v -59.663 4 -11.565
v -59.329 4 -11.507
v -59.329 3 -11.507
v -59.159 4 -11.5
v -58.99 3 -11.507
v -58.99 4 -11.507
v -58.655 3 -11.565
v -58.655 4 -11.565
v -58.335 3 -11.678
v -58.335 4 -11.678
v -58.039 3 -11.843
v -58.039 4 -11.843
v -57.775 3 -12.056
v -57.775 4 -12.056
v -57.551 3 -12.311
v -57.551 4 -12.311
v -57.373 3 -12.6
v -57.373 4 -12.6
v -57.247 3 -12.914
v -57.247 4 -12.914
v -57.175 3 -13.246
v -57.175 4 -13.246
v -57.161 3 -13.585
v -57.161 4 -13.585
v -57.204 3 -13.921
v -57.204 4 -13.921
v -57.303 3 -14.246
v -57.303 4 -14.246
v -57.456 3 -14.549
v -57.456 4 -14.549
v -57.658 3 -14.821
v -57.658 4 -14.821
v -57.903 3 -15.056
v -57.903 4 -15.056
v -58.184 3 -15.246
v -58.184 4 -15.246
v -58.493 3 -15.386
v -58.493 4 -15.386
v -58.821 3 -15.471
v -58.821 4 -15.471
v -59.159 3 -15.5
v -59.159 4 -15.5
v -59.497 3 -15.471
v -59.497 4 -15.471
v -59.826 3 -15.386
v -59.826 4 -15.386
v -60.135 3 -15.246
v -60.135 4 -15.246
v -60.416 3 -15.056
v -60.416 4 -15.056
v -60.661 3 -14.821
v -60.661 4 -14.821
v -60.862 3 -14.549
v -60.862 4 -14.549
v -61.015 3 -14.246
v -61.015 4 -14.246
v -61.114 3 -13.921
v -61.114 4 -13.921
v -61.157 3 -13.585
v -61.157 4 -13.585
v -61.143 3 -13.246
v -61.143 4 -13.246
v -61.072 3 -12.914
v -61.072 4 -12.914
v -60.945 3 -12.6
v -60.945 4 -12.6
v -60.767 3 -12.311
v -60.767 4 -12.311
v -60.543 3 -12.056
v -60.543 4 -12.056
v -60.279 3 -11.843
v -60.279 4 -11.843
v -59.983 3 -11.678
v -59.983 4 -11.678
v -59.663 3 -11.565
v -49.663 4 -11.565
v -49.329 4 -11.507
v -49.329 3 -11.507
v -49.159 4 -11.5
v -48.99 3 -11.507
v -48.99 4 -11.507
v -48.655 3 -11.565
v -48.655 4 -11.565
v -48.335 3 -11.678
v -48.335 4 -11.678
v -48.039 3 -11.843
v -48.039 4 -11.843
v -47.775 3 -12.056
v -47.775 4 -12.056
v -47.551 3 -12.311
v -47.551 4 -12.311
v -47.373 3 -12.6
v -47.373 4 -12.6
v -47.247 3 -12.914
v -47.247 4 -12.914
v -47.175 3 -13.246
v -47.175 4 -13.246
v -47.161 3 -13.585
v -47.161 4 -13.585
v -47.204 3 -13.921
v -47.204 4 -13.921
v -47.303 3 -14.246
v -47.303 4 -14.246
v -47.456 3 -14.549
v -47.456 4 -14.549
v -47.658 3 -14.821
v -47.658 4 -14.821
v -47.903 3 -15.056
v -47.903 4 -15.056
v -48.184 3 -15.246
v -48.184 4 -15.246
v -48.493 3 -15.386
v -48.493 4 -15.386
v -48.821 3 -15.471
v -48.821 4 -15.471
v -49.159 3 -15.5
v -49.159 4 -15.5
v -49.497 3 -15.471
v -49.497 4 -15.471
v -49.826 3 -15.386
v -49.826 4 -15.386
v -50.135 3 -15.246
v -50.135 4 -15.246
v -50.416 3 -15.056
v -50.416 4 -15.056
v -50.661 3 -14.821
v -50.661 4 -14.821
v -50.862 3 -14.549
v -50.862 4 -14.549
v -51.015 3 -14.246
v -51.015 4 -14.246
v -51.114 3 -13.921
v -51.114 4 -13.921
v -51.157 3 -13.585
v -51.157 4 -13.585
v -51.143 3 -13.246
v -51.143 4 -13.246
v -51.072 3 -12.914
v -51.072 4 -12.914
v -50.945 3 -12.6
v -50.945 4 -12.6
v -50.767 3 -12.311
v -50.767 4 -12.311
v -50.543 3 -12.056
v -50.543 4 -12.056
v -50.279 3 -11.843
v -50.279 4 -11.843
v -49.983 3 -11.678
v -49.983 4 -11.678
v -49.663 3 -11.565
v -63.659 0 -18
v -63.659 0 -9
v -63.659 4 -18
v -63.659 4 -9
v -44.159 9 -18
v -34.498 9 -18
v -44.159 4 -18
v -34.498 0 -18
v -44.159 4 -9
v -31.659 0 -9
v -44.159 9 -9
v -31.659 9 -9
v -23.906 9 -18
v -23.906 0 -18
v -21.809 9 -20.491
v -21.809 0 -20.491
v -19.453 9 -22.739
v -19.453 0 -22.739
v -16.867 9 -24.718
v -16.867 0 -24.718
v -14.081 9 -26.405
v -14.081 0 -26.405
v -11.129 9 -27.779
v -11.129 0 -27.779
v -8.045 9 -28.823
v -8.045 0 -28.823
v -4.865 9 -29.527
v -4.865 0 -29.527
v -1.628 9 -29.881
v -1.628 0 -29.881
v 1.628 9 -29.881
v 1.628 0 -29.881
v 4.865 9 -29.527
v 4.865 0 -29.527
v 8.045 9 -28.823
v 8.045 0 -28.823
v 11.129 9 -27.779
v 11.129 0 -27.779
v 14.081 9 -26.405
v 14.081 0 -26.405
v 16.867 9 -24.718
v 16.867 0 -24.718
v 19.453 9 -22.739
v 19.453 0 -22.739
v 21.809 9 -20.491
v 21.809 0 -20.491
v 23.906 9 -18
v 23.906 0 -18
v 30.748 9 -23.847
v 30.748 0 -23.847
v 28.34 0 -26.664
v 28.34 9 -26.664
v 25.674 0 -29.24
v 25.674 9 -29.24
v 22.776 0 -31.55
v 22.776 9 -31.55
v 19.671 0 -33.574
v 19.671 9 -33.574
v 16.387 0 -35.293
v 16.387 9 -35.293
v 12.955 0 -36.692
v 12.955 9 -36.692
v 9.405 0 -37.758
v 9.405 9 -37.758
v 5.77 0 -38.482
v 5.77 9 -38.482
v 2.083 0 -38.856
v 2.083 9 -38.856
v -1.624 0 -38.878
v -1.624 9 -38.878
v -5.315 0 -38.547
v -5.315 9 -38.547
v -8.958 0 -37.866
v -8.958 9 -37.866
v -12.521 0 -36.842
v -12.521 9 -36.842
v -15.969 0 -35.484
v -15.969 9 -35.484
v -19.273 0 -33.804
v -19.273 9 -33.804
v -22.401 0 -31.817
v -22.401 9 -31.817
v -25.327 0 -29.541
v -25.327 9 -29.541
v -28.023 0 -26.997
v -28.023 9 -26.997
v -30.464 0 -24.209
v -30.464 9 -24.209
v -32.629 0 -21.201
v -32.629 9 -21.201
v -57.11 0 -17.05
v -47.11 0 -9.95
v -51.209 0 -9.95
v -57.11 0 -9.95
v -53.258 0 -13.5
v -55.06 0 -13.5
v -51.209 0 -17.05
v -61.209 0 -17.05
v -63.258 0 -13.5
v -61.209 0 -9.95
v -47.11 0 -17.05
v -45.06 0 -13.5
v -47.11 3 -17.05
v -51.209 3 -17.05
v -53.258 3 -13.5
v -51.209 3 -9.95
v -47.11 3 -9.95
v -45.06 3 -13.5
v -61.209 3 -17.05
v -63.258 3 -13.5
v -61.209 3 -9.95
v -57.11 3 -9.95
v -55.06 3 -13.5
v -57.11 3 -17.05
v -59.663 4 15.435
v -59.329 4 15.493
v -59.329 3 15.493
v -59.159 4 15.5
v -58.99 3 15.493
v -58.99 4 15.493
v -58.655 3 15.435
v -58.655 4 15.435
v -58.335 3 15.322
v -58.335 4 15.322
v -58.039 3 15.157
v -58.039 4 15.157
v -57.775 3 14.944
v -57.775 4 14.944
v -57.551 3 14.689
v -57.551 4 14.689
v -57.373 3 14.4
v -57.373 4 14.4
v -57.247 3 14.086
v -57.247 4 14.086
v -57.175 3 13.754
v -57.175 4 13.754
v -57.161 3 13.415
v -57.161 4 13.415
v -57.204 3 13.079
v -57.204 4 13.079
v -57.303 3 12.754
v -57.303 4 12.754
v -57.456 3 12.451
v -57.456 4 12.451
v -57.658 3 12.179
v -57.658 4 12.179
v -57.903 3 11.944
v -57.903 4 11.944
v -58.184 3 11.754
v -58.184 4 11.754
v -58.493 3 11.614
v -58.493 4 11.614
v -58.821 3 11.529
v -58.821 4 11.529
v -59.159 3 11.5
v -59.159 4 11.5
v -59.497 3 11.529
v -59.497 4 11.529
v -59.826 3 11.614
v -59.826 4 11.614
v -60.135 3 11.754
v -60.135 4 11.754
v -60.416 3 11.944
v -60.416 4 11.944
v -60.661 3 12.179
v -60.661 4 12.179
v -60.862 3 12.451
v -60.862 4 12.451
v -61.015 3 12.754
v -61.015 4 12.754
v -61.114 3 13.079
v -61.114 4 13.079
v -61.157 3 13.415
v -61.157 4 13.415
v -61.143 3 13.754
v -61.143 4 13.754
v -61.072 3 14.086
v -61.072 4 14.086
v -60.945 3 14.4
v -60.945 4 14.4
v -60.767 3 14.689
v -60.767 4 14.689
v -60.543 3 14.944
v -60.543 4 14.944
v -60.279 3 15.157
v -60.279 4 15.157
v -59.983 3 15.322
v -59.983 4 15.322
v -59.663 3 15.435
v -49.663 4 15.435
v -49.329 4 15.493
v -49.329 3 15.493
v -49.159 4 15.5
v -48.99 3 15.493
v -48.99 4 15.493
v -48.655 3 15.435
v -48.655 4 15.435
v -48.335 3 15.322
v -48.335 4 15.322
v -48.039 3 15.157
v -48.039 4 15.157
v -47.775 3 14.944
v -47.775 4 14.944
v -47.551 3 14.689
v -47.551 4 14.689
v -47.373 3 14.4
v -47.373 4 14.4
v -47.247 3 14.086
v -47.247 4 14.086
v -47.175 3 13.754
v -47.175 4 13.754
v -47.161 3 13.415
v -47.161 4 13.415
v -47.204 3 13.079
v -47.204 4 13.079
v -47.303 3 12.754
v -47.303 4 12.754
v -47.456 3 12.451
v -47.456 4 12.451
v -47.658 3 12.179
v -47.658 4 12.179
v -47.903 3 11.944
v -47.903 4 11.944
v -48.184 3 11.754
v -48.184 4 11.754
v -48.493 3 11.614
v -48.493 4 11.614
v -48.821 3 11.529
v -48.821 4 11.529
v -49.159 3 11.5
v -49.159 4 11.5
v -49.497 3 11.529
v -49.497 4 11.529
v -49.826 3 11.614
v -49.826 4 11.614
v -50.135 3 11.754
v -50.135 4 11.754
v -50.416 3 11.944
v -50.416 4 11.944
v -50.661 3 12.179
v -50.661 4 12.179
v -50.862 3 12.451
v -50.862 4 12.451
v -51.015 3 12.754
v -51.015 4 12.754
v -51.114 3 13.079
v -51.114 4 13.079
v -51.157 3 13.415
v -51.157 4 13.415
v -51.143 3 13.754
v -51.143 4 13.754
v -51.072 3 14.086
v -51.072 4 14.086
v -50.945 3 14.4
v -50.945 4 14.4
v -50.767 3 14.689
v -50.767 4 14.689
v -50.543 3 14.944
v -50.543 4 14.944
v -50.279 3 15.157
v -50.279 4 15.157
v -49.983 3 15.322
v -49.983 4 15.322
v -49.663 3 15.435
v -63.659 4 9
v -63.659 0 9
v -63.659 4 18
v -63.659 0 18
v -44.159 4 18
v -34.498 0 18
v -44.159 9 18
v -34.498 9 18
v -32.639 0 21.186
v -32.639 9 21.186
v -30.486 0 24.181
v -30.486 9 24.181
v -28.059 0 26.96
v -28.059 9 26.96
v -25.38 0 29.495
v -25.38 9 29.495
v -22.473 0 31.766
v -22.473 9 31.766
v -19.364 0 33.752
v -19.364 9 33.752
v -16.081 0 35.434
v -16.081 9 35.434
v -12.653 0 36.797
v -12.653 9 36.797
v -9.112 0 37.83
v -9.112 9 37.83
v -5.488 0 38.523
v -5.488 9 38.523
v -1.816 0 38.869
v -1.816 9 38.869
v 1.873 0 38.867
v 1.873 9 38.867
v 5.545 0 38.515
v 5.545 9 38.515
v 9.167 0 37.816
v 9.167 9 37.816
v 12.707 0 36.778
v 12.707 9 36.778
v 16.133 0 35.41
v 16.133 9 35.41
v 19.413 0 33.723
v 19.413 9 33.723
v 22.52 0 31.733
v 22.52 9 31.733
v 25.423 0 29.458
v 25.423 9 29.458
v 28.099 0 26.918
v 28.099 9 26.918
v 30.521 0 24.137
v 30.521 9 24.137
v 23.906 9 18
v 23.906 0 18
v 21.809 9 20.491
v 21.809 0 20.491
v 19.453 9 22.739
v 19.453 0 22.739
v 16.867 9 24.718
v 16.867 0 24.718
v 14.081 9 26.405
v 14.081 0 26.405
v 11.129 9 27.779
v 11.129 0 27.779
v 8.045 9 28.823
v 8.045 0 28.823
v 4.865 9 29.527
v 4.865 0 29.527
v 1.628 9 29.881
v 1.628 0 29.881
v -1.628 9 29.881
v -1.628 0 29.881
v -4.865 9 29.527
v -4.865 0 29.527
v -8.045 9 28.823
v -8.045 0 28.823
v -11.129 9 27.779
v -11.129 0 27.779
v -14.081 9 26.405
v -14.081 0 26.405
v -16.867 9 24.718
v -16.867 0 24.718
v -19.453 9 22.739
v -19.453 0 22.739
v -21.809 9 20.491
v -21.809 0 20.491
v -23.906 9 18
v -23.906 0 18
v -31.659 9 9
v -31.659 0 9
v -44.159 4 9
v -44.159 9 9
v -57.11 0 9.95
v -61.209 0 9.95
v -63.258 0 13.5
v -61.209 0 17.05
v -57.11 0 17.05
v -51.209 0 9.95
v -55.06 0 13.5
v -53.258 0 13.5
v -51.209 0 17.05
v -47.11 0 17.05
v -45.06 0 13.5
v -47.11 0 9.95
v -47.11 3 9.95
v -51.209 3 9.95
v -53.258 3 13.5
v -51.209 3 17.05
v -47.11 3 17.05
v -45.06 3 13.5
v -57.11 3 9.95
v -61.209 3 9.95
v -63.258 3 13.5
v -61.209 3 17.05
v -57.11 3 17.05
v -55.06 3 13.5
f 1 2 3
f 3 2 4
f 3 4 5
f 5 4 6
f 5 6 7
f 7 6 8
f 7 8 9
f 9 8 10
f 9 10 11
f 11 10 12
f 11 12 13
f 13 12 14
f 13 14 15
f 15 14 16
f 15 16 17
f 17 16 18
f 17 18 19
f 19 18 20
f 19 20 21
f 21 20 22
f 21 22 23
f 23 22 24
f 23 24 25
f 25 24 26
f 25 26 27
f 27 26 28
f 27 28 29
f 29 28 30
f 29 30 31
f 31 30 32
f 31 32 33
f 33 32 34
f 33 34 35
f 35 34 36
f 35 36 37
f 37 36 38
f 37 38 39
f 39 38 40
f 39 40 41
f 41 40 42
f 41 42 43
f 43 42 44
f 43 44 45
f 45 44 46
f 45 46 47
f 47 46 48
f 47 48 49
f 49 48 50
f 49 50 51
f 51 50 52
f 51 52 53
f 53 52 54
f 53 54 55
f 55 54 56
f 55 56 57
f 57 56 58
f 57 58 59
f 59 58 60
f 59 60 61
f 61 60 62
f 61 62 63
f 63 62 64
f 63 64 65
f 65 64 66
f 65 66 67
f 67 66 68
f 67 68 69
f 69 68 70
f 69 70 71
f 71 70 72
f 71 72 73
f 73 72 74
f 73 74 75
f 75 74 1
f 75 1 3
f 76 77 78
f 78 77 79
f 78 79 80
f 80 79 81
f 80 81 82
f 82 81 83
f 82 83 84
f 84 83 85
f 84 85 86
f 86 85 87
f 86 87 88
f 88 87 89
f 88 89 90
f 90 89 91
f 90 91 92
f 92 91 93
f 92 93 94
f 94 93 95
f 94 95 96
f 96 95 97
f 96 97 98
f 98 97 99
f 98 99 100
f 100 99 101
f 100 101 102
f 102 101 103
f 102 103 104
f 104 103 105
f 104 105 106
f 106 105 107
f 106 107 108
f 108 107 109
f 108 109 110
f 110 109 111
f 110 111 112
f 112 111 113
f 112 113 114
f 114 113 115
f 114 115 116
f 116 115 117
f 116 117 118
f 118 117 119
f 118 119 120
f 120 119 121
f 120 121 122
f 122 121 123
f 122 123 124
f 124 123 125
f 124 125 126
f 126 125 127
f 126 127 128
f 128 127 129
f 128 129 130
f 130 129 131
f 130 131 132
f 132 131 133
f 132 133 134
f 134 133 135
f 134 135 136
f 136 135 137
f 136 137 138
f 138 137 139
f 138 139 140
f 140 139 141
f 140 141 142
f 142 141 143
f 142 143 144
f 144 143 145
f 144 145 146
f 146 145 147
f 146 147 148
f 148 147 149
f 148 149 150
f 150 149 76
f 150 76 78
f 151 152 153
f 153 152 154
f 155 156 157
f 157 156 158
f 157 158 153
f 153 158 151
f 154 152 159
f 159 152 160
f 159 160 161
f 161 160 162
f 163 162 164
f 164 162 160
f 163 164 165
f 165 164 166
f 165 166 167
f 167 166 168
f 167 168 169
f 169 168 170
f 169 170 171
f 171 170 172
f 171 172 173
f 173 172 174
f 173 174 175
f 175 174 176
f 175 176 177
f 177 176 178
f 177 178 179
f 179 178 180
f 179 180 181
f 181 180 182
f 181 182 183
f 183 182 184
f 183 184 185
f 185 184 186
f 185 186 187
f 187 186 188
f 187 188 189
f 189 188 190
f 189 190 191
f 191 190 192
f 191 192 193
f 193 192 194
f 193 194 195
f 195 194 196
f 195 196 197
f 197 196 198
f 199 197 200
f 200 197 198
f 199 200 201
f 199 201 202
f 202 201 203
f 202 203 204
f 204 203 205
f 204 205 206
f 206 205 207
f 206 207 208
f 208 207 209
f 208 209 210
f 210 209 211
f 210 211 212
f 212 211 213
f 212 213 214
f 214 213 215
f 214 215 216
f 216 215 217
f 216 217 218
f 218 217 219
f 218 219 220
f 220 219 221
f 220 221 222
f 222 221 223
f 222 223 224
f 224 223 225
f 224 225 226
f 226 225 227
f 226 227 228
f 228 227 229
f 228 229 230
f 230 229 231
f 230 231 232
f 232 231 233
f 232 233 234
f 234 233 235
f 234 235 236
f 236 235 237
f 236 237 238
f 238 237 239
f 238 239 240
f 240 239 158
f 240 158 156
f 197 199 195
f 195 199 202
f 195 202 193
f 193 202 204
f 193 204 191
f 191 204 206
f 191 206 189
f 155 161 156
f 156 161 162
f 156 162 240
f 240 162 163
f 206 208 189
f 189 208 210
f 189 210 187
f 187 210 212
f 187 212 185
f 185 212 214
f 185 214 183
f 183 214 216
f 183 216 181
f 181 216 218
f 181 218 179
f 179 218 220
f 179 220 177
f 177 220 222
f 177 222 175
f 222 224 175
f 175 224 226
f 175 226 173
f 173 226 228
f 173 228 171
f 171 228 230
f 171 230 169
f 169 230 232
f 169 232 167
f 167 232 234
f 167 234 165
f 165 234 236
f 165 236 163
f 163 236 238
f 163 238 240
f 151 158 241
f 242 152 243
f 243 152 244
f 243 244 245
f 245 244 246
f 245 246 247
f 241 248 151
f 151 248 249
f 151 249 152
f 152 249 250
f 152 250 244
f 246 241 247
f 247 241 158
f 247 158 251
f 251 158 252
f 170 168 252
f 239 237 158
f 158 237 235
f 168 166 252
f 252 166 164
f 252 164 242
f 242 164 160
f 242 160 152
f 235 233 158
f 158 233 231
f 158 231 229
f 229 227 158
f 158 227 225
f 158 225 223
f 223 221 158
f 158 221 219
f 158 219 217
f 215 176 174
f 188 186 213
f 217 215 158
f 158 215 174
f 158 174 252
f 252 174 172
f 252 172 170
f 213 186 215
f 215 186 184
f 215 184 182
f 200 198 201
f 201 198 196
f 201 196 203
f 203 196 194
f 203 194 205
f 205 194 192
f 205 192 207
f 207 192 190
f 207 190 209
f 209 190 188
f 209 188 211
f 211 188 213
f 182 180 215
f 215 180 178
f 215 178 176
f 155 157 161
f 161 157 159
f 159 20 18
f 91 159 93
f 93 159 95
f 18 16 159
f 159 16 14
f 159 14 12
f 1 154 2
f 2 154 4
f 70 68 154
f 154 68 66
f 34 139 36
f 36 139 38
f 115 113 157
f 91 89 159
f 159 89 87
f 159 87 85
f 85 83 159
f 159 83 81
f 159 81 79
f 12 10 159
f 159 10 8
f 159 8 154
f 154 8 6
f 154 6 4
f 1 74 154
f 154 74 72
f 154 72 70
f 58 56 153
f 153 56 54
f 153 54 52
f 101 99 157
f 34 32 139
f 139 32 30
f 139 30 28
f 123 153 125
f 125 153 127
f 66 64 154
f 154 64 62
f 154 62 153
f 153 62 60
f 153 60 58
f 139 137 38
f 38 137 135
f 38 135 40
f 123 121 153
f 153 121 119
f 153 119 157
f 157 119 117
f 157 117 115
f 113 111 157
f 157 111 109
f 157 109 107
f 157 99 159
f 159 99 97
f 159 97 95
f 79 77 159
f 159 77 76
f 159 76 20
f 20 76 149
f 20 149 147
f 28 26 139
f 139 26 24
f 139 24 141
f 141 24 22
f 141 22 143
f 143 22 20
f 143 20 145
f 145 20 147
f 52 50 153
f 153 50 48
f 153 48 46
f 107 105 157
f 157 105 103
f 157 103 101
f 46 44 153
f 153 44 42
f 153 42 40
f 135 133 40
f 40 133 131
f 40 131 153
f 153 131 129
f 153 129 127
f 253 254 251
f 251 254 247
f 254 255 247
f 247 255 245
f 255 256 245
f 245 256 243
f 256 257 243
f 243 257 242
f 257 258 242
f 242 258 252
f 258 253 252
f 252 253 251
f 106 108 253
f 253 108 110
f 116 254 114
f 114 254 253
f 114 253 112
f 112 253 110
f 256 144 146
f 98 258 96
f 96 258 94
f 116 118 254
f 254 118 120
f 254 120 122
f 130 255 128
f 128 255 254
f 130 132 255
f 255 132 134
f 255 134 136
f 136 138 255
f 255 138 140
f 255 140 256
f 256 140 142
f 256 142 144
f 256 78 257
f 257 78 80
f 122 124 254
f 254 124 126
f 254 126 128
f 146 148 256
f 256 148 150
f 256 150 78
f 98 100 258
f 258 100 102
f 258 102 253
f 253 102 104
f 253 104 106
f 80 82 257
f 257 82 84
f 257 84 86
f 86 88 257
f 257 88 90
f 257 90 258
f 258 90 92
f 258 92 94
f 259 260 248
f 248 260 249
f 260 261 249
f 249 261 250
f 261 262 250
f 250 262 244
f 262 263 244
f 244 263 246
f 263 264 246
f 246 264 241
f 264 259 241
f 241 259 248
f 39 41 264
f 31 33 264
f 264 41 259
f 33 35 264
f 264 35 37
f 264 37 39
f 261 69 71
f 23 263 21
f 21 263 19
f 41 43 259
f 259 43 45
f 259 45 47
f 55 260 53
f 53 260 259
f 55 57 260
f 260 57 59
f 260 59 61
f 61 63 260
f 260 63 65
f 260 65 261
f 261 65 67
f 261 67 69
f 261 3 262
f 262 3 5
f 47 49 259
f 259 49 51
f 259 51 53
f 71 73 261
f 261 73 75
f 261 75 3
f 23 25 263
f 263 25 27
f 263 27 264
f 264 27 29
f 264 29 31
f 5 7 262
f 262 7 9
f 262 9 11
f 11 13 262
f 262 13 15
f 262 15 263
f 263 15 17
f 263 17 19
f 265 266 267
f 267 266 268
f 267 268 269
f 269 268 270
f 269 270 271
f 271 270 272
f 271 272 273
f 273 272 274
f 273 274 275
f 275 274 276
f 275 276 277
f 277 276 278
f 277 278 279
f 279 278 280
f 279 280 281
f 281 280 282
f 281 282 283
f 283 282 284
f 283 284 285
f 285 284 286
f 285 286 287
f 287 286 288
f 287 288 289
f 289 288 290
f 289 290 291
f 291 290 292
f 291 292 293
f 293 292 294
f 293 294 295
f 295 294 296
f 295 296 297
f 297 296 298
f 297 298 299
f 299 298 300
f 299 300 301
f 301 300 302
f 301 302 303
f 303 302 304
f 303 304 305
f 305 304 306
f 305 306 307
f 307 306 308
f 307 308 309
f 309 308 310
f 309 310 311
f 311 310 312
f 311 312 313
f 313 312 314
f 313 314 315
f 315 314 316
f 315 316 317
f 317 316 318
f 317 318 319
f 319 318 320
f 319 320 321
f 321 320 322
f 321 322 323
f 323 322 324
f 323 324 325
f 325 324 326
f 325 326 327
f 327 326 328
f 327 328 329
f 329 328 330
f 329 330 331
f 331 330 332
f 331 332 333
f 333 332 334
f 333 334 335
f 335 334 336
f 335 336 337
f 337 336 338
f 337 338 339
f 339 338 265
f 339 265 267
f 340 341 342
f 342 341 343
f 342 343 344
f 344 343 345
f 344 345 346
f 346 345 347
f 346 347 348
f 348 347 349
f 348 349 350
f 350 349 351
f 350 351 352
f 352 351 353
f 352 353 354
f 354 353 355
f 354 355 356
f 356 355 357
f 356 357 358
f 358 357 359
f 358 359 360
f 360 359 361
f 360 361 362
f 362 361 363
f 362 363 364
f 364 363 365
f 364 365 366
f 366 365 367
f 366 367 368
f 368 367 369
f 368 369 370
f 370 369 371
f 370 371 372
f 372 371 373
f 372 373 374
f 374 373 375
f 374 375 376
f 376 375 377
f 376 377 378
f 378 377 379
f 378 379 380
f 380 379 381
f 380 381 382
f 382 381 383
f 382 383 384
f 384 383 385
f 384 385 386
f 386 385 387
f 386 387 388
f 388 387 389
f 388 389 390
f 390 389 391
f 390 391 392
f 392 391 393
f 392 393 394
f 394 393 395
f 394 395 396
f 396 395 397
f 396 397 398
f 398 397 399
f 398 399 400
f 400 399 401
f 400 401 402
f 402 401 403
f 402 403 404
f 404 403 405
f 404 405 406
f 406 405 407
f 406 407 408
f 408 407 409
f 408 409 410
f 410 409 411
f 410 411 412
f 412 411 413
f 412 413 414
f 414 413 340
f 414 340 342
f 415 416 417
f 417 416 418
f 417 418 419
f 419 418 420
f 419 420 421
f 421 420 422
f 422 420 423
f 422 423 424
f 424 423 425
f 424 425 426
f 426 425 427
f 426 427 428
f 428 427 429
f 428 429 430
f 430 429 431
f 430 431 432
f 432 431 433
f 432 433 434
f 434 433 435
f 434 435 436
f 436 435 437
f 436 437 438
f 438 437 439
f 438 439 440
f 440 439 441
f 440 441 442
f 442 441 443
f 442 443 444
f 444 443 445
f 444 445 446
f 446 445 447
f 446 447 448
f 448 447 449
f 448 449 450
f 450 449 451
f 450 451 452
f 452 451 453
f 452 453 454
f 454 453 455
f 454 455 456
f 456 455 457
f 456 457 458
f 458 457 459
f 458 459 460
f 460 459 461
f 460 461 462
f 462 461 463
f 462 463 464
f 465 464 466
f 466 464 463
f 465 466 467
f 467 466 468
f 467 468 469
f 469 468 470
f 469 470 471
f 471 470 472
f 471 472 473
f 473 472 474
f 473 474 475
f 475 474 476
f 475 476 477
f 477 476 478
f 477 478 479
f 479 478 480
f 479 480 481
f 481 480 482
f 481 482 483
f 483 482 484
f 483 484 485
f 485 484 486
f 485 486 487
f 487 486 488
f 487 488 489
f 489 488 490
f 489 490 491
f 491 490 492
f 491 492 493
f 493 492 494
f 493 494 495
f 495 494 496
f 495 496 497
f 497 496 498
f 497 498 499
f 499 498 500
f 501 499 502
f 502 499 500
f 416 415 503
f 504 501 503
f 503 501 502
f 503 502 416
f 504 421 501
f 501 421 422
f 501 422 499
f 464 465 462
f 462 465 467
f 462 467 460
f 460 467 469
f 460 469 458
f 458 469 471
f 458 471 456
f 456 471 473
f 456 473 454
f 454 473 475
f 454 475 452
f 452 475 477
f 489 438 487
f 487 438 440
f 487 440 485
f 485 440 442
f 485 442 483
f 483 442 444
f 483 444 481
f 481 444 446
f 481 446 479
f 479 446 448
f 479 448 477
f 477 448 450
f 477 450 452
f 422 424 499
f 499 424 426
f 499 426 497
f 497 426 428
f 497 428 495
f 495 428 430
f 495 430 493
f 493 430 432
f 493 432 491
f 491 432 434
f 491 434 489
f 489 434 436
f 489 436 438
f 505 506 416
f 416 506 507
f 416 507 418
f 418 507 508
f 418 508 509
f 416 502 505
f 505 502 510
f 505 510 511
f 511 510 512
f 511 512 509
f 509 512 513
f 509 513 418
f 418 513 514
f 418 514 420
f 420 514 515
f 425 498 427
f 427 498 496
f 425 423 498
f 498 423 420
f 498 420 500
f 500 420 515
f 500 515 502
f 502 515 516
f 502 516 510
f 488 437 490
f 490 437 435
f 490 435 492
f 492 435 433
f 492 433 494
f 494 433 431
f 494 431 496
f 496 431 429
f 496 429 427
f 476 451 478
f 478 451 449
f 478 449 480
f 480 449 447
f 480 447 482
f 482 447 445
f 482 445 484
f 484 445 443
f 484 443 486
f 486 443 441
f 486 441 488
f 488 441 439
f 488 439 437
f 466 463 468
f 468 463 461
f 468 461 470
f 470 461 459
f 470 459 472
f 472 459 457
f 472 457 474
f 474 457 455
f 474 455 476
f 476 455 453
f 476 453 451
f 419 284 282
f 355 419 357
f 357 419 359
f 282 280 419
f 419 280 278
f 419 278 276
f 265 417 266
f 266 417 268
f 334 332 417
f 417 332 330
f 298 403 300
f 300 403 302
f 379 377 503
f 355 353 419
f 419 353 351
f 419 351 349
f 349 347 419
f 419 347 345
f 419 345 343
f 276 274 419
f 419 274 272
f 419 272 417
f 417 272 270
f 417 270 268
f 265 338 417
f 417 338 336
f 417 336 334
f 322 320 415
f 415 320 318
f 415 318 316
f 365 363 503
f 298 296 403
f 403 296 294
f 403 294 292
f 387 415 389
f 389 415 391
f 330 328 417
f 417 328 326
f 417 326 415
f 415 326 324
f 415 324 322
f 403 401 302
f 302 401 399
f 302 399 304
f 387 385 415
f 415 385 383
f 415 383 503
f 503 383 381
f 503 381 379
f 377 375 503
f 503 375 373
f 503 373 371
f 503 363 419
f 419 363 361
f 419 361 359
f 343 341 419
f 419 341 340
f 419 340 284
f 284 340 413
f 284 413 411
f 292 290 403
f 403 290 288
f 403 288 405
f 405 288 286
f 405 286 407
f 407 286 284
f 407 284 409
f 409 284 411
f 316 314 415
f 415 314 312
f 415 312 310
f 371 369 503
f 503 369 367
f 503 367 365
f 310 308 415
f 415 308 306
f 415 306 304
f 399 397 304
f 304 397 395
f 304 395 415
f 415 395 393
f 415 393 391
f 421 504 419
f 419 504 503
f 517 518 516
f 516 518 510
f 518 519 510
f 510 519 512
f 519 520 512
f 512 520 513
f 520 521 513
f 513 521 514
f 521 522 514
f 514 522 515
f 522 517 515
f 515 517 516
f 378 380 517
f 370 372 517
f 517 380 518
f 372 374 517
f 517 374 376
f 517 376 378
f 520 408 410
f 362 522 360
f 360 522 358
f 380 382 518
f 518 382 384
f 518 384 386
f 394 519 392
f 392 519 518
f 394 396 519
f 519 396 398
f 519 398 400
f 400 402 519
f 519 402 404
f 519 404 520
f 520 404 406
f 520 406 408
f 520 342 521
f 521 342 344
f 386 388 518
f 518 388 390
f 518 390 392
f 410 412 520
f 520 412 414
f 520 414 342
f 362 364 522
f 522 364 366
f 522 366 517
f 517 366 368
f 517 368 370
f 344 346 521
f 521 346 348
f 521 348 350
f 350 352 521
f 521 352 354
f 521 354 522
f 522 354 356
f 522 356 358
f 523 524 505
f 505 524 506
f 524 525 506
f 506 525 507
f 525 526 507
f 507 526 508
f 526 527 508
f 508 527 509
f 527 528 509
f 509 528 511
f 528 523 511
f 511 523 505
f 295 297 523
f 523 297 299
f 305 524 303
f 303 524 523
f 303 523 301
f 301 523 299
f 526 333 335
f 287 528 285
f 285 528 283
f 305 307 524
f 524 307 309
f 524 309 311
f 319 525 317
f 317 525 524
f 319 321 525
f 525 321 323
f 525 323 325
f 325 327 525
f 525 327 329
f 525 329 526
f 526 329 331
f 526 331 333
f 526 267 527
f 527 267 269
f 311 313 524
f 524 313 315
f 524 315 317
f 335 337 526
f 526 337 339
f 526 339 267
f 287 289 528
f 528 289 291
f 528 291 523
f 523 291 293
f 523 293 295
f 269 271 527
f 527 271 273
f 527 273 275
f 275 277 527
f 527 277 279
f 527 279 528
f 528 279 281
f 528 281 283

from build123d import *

# Parameters (mm, degrees)
SKETCH1_R           = 2
BOSS_EXTRUDE1_DEPTH = 9
SKETCH5_W           = 19.5
SKETCH5_H           = 36
CUT_EXTRUDE1_DEPTH  = 5
CUT_EXTRUDE2_DEPTH  = 3


with BuildPart() as part:
    # Sketch1 → Boss-Extrude1 (new body)
    # profile 1 of 4: a face of its own
    with BuildSketch(Plane(origin=(0, 0, 0), x_dir=(1, 0, 0), z_dir=(0, 1, 0))):
        Polygon((-31.6592752, 9), (-23.906136588, 18), (-34.498184555, 18), (-63.6592752, 18), (-63.6592752, 9), align=None)
        with Locations(Location((-59.1592752, 13.5, 0), (0, 0, 270))):
            Circle(SKETCH1_R, mode=Mode.SUBTRACT)
        with Locations(Location((-49.1592752, 13.5, 0), (0, 0, 270))):
            Circle(SKETCH1_R, mode=Mode.SUBTRACT)
    # profile 2 of 4: a face of its own
    with BuildSketch(Plane(origin=(0, 0, 0), x_dir=(1, 0, 0), z_dir=(0, 1, 0))):
        Polygon((-63.6592752, -18), (-34.498184555, -18), (-23.906136588, -18), (-31.6592752, -9), (-63.6592752, -9), align=None)
        with Locations(Location((-59.1592752, -13.5, 0), (0, 0, 270))):
            Circle(SKETCH1_R, mode=Mode.SUBTRACT)
        with Locations(Location((-49.1592752, -13.5, 0), (0, 0, 270))):
            Circle(SKETCH1_R, mode=Mode.SUBTRACT)
    # profile 3 of 4: a face of its own
    with BuildSketch(Plane(origin=(0, 0, 0), x_dir=(1, 0, 0), z_dir=(0, 1, 0))):
        with BuildLine():
            Line((23.906136588, 18), (30.747951295, 23.847184922))
            ThreePointArc((30.747951295, 23.847184922), (-3.473248516, 38.756435366), (-34.498184555, 18))
            Line((-34.498184555, 18), (-23.906136588, 18))
            ThreePointArc((-23.906136588, 18), (0, 29.924962265), (23.906136588, 18))
        make_face()
    # profile 4 of 4: a face of its own
    with BuildSketch(Plane(origin=(0, 0, 0), x_dir=(1, 0, 0), z_dir=(0, 1, 0))):
        with BuildLine():
            Line((-34.498184555, -18), (-23.906136588, -18))
            ThreePointArc((-23.906136588, -18), (0, -29.924962265), (23.906136588, -18))
            Line((23.906136588, -18), (30.521317527, -24.136567983))
            ThreePointArc((30.521317527, -24.136567983), (-3.656259631, -38.739598644), (-34.498184555, -18))
        make_face()
    extrude(amount=BOSS_EXTRUDE1_DEPTH)

    # Sketch5 → Cut-Extrude1 (cut)
    with BuildSketch(Plane(origin=(0, 9, 0), x_dir=(1, 0, 0), z_dir=(0, 1, 0))):
        with Locations((-53.9092752, 0)):
            Rectangle(SKETCH5_W, SKETCH5_H)
    extrude(amount=-CUT_EXTRUDE1_DEPTH, mode=Mode.SUBTRACT)

    # Sketch6 → Cut-Extrude2 (cut)
    with BuildSketch(Plane.XZ):
        Polygon((-57.109681744, 9.95), (-55.060088289, 13.5), (-57.109681744, 17.05), (-61.208868656, 17.05), (-63.258462111, 13.5), (-61.208868656, 9.95), align=None)
        Polygon((-47.109681744, 9.95), (-45.060088289, 13.5), (-47.109681744, 17.05), (-51.208868656, 17.05), (-53.258462111, 13.5), (-51.208868656, 9.95), align=None)
        Polygon((-61.208868656, -17.05), (-57.109681744, -17.05), (-55.060088289, -13.5), (-57.109681744, -9.95), (-61.208868656, -9.95), (-63.258462111, -13.5), align=None)
        Polygon((-47.109681744, -17.05), (-45.060088289, -13.5), (-47.109681744, -9.95), (-51.208868656, -9.95), (-53.258462111, -13.5), (-51.208868656, -17.05), align=None)
    extrude(amount=-CUT_EXTRUDE2_DEPTH, mode=Mode.SUBTRACT)


solid = part.part
